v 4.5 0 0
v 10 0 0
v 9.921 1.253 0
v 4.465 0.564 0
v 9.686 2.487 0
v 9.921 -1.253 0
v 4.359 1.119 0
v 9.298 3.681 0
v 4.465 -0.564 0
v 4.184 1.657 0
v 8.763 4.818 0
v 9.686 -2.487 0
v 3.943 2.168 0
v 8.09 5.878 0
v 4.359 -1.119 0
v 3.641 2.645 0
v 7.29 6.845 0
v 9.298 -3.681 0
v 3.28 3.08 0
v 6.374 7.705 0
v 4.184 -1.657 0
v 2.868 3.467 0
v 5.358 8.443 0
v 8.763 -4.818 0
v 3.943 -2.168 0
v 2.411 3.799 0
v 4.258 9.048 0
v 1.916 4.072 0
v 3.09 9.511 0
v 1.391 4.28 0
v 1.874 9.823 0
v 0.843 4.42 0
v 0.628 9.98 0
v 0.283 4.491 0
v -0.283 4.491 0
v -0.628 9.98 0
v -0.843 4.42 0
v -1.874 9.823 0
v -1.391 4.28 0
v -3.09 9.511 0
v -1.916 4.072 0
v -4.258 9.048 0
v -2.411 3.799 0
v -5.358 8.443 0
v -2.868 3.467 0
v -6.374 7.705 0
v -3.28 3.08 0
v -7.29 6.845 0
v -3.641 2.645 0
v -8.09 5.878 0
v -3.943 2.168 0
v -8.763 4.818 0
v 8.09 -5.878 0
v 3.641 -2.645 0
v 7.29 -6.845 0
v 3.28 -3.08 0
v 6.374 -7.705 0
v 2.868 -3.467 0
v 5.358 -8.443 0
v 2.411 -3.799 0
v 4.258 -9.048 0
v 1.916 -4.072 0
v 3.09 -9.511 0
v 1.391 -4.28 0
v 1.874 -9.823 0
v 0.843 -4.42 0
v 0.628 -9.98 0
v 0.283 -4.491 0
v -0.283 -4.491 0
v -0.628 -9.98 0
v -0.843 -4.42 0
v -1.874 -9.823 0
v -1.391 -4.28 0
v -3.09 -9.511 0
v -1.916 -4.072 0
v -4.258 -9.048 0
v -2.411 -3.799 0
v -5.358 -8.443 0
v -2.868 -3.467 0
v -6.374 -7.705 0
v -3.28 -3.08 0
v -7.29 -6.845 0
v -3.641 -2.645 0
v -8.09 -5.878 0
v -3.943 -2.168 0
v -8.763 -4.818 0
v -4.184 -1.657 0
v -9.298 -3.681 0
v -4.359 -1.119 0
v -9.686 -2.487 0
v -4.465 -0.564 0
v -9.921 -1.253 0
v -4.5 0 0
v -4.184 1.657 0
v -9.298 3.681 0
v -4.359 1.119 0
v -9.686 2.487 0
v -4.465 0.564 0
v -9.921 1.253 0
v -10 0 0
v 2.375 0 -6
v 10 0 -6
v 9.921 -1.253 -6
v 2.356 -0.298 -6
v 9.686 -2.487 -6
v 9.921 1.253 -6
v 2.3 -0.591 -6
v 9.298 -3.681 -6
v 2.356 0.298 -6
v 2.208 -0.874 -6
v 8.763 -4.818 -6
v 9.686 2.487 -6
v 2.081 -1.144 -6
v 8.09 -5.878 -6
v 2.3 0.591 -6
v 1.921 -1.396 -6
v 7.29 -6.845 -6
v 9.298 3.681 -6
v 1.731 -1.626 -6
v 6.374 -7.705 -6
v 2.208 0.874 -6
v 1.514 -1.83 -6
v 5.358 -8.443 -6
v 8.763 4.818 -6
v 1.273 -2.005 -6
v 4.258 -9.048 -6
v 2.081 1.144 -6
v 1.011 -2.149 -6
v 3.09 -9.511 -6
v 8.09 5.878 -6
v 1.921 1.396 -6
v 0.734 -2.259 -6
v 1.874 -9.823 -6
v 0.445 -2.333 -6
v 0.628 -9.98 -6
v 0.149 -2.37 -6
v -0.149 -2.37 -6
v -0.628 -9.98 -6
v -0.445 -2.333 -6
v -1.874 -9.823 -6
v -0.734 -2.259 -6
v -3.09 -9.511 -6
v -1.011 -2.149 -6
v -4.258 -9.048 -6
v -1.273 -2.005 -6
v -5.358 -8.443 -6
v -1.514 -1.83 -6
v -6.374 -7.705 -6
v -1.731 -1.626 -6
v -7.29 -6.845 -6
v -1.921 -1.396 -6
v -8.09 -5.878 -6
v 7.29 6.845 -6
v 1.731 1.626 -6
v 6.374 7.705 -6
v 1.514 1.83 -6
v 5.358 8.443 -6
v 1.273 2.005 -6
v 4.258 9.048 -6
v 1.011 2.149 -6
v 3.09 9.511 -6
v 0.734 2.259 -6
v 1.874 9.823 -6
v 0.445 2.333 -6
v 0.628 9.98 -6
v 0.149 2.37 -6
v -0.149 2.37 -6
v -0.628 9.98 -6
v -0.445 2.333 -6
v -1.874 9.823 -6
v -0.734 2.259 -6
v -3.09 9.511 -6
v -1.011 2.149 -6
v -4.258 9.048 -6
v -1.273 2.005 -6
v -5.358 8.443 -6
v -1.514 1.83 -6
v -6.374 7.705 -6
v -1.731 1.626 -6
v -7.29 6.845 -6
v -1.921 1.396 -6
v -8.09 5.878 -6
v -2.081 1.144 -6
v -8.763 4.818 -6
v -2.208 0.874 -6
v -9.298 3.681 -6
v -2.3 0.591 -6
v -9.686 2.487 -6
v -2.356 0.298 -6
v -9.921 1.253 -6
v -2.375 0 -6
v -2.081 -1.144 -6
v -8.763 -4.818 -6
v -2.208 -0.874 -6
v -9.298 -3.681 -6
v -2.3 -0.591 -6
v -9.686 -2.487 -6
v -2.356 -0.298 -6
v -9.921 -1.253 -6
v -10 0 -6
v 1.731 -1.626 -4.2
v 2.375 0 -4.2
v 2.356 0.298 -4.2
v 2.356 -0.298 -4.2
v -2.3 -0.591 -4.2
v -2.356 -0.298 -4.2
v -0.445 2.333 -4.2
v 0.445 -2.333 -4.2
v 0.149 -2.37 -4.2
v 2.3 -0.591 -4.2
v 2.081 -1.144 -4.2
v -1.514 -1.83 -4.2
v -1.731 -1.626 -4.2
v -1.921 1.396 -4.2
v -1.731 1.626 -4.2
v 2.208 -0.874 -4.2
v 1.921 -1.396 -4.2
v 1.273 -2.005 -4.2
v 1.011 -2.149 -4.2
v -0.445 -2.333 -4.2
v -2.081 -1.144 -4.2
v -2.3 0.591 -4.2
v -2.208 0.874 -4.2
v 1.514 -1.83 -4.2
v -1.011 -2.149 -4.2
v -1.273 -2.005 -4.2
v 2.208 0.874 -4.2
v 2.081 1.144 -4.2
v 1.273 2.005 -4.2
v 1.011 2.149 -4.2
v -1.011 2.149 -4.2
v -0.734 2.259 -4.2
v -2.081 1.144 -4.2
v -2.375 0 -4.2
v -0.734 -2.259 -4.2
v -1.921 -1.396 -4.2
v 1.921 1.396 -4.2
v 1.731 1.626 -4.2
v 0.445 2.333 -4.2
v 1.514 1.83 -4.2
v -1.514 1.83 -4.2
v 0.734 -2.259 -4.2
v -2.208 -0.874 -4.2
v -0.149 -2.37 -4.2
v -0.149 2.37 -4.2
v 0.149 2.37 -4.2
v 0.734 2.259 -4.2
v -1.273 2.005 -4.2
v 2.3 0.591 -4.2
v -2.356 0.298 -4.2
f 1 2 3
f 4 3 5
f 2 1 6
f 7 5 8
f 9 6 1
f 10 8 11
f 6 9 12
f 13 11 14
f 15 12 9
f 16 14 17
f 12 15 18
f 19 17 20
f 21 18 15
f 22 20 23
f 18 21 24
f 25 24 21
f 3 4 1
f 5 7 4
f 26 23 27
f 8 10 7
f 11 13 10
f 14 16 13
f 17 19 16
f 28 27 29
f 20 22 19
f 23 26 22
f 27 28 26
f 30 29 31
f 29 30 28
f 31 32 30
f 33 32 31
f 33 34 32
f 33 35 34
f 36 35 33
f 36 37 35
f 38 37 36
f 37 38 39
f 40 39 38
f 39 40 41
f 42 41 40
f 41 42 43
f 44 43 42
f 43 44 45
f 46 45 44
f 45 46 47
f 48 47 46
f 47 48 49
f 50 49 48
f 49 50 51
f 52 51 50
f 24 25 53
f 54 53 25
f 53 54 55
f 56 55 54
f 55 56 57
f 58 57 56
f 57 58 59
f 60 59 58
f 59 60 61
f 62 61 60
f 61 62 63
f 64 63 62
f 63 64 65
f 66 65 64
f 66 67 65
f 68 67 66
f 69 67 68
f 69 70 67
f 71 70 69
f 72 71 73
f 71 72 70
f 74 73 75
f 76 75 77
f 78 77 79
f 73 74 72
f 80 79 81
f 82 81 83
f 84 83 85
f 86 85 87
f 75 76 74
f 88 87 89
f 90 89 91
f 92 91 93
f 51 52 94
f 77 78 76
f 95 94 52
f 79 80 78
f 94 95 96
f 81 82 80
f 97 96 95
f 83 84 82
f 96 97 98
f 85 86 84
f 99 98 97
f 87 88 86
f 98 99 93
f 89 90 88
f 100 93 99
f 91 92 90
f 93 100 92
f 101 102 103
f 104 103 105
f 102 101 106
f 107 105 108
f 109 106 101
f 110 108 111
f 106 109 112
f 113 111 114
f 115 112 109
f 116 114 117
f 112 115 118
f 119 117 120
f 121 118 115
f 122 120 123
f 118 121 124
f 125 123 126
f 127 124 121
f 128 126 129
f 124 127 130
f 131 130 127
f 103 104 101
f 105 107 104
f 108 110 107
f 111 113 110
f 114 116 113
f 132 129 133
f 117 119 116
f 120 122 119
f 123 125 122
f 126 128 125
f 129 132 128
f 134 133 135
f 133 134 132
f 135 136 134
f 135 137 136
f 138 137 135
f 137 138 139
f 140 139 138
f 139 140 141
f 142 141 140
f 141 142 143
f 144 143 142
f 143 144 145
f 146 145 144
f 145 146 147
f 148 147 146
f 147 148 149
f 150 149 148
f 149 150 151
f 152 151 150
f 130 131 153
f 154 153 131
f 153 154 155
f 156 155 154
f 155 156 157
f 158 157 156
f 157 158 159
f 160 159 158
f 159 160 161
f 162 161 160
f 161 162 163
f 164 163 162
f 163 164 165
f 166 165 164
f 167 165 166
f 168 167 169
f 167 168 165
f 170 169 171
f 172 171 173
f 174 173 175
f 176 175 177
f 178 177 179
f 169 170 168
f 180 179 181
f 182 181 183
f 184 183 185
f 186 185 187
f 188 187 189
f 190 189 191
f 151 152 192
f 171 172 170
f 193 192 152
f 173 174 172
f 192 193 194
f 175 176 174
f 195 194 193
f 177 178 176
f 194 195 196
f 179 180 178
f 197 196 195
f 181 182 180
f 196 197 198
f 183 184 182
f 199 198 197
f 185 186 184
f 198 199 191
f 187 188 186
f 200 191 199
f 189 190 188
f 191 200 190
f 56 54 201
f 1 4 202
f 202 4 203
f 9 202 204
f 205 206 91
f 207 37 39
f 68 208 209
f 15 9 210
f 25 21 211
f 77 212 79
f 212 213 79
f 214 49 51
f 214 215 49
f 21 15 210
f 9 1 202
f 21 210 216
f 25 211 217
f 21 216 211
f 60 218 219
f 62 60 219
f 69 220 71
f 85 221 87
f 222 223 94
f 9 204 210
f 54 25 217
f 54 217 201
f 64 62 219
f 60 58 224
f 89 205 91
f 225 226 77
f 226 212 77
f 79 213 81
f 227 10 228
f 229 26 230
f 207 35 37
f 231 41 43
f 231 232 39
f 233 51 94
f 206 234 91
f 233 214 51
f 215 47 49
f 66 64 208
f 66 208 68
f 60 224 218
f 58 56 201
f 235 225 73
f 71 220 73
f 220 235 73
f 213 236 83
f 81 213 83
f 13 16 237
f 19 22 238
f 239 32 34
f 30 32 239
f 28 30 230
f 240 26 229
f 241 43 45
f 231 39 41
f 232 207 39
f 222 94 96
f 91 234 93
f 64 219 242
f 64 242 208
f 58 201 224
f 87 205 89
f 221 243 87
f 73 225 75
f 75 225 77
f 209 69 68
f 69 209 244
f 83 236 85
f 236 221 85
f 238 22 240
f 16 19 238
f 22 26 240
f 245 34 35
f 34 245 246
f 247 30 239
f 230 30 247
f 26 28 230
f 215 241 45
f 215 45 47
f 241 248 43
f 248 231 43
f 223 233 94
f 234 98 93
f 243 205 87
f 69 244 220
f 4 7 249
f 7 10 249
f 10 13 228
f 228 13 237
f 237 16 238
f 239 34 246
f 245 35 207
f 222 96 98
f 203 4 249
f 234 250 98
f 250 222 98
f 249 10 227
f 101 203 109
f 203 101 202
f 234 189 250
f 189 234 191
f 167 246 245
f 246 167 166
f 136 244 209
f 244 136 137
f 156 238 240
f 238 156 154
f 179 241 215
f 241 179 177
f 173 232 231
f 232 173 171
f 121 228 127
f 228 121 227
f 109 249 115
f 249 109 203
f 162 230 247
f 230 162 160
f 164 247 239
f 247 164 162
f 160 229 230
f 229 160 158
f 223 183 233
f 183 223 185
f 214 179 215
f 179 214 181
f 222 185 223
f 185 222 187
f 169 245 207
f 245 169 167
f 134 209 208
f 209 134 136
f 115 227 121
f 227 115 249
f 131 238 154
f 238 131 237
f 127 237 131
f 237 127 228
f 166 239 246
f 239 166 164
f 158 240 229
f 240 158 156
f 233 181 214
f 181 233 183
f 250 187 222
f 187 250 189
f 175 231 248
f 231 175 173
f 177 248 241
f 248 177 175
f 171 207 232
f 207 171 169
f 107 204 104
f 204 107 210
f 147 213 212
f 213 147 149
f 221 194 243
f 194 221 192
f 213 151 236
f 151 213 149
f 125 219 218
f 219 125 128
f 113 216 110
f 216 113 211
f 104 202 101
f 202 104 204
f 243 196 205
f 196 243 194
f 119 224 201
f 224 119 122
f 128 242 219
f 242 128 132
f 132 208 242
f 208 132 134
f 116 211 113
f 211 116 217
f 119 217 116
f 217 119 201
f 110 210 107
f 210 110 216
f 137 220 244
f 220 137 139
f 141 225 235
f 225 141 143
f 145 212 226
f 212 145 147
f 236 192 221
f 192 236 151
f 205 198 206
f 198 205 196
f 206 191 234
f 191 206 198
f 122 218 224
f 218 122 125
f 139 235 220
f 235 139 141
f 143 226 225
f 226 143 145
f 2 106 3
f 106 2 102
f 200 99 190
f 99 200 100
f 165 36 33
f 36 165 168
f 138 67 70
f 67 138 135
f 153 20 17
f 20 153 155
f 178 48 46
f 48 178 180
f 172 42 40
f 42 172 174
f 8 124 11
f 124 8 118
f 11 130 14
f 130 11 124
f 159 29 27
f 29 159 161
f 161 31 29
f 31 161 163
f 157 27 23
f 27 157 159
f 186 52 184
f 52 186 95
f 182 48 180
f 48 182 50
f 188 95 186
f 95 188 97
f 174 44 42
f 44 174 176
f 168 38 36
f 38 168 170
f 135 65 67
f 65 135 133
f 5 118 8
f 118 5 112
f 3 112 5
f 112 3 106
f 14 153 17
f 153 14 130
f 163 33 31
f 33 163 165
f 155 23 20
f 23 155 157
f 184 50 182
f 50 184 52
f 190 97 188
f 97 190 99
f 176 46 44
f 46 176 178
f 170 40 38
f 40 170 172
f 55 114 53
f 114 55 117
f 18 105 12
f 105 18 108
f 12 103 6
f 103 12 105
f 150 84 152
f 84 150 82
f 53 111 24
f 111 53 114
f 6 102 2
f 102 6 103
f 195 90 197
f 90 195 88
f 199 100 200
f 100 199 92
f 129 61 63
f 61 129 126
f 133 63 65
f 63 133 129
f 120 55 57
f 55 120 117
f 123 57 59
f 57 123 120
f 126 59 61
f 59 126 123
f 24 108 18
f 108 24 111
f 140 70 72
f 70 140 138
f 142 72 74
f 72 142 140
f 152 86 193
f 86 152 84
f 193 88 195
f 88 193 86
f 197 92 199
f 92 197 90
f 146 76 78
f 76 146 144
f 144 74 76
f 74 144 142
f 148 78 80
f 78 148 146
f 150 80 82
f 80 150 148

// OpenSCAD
$fn = 50;


difference() {
	union() {
		translate(v = [0, 0, -6.0000000000]) {
			cylinder(h = 6, r = 10.0000000000);
		}
		cylinder(h = 0, r = 13.0000000000);
	}
	union() {
		translate(v = [0, 0, 0]) {
			rotate(a = [0, 0, 0]) {
				difference() {
					union() {
						#translate(v = [0, 0, -6.0000000000]) {
							cylinder(h = 6, r = 2.2500000000);
						}
						#translate(v = [0, 0, -4.2000000000]) {
							cylinder(h = 4.2000000000, r = 10.0000000000, r1 = 2.3750000000, r2 = 4.5000000000);
						}
						#translate(v = [0, 0, -6.0000000000]) {
							cylinder(h = 6, r = 2.3750000000);
						}
						#translate(v = [0, 0, -6.0000000000]) {
							cylinder(h = 6, r = 2.2500000000);
						}
					}
					union();
				}
			}
		}
	}
}
